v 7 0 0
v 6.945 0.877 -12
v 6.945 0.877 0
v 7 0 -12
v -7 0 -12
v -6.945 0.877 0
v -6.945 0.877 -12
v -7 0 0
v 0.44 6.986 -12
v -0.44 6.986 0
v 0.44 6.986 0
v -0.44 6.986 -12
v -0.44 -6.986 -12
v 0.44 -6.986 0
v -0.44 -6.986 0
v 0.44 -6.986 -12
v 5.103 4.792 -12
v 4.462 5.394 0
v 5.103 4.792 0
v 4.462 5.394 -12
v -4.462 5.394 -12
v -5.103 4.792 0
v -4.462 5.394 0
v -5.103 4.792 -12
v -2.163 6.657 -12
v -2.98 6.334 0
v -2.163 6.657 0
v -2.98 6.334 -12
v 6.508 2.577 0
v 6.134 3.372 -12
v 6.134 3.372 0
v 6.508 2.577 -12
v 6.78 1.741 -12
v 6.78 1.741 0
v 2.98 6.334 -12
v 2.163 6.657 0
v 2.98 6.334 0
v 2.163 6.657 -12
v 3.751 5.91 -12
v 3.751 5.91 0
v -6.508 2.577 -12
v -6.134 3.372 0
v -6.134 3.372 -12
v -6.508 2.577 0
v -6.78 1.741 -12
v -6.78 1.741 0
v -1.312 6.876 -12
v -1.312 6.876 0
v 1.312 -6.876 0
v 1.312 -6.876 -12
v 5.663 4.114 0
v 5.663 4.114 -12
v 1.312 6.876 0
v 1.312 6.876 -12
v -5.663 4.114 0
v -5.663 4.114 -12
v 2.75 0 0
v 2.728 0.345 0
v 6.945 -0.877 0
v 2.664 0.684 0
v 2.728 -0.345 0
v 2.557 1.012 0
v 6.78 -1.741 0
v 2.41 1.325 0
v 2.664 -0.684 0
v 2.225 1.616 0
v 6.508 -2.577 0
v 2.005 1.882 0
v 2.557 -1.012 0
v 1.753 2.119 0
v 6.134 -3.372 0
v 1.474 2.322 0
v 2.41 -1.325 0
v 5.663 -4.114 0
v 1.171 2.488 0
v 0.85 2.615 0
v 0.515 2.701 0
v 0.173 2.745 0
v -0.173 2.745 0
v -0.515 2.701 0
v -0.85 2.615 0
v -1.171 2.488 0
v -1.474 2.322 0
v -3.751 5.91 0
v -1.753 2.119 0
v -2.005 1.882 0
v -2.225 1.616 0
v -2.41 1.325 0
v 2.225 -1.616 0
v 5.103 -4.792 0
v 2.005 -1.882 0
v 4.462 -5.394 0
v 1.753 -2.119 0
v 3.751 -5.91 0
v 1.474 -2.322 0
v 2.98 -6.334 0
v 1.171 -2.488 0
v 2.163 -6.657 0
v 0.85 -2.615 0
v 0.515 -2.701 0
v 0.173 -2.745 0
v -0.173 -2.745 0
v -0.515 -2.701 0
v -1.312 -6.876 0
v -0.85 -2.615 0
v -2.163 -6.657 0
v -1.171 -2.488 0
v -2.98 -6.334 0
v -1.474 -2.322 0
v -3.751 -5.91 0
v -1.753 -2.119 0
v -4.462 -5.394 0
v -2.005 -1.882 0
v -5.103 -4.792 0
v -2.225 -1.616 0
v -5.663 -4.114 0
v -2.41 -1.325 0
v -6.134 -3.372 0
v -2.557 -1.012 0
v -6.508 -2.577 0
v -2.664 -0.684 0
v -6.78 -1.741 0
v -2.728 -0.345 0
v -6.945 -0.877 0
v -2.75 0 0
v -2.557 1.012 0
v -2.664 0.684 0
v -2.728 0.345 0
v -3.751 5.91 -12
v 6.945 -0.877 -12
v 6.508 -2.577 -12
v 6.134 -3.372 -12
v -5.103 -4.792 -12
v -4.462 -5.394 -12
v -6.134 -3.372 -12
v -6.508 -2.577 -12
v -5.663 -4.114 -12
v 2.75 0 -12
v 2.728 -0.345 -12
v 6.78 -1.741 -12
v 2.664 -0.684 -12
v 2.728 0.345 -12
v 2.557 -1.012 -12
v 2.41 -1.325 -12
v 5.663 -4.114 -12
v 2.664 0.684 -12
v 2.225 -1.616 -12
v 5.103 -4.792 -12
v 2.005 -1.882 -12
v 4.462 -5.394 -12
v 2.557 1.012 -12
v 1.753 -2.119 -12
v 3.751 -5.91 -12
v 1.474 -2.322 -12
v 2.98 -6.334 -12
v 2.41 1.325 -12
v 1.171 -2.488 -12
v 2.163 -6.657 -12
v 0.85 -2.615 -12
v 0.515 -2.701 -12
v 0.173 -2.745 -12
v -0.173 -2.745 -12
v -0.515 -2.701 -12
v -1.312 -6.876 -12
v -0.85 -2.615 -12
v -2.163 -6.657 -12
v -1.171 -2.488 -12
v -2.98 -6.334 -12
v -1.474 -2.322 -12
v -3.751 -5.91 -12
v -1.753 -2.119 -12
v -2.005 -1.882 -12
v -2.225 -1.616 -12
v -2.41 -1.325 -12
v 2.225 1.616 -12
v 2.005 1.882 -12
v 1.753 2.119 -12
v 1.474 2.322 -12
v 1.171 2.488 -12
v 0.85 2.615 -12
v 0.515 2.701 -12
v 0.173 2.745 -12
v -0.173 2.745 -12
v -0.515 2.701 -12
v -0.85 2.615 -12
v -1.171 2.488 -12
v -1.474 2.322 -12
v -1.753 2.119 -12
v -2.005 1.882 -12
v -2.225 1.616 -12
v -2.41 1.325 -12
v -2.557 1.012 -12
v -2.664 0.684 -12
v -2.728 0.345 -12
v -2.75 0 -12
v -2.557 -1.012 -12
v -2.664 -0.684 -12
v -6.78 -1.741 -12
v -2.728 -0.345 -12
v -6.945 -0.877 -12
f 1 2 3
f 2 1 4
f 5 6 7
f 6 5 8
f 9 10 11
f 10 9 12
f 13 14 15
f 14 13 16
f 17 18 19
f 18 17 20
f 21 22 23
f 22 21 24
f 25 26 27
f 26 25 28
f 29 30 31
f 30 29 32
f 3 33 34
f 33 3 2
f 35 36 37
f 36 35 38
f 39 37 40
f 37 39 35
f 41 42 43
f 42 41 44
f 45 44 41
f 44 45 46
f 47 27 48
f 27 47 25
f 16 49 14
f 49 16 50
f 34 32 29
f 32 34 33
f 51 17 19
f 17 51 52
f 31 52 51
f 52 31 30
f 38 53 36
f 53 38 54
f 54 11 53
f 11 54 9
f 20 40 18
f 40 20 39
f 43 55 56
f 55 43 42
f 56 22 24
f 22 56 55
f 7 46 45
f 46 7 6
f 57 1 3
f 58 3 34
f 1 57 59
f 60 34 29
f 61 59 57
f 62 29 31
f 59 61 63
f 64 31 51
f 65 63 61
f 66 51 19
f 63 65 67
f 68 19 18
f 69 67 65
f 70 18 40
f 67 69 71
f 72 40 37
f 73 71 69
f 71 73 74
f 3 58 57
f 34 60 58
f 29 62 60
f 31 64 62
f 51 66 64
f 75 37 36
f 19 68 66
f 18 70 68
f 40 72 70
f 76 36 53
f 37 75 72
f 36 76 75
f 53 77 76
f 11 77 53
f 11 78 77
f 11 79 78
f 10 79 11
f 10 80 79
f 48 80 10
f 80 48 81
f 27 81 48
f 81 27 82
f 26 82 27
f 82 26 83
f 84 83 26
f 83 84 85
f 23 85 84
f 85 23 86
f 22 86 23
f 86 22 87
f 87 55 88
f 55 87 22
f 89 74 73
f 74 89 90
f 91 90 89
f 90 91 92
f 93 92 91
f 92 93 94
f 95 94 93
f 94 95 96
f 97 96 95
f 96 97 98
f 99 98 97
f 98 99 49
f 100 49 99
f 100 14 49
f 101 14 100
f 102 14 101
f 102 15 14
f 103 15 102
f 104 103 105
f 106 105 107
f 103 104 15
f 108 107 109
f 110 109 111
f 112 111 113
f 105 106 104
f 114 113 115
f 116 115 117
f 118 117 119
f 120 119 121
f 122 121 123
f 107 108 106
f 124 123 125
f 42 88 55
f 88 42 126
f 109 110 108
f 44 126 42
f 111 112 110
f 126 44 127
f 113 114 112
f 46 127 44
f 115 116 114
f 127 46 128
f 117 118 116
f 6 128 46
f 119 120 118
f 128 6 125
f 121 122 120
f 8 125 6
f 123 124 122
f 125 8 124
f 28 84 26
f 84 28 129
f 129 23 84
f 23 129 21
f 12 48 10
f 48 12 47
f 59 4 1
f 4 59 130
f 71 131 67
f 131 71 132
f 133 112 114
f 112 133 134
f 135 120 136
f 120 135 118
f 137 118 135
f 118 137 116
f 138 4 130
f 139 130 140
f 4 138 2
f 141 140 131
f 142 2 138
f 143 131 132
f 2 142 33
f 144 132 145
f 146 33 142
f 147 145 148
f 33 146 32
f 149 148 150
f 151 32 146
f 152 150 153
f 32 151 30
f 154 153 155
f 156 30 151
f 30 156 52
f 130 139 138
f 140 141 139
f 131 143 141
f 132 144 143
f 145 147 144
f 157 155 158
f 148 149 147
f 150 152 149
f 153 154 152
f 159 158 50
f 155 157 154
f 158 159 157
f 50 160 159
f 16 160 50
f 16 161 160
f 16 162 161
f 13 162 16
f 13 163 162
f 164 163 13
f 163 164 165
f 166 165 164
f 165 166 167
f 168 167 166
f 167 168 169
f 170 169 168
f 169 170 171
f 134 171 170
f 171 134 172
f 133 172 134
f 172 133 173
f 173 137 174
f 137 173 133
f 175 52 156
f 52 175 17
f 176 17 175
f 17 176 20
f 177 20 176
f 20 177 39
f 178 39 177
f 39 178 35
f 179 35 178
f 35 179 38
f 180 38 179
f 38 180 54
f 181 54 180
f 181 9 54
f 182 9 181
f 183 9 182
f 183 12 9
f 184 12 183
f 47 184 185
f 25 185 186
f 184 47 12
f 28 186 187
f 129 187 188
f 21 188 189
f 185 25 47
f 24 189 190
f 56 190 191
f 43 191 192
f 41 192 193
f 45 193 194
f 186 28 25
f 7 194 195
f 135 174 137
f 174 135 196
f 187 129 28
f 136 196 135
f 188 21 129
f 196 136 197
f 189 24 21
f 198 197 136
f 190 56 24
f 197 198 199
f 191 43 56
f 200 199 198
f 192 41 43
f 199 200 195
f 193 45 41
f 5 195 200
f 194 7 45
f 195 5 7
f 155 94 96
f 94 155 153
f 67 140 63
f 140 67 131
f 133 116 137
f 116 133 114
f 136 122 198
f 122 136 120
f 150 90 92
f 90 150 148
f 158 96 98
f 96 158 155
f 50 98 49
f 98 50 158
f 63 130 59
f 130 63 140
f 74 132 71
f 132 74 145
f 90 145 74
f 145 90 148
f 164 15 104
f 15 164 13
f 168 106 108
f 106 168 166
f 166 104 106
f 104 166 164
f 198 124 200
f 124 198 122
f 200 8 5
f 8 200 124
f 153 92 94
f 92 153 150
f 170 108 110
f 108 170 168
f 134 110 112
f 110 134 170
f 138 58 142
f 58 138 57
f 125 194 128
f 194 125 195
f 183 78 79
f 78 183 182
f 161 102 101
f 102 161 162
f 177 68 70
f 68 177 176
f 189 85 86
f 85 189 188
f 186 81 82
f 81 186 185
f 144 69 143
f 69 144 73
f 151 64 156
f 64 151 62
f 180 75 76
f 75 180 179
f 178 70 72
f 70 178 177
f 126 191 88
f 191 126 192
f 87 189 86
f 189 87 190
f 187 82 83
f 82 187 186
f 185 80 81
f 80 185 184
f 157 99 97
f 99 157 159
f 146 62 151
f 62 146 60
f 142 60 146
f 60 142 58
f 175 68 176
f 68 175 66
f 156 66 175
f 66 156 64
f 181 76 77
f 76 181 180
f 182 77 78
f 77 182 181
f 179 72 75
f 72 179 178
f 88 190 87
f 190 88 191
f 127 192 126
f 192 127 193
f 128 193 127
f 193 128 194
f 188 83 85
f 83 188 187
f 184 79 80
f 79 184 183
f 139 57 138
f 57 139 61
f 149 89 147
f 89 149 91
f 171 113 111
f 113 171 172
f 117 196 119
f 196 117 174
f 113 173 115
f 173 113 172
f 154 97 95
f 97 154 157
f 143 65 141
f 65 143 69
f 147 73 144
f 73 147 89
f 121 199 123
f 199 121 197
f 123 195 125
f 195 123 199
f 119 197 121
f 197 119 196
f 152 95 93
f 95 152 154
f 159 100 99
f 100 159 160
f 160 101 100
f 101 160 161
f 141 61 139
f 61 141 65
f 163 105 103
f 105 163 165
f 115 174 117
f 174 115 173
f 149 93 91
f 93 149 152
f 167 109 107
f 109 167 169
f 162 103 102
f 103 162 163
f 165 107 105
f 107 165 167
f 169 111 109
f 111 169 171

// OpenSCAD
$fn = 50;


difference() {
	union() {
		translate(v = [0, 0, -12.0000000000]) {
			cylinder(h = 12, r = 7.0000000000);
		}
		cylinder(h = 0, r = 16.0000000000);
	}
	union() {
		#translate(v = [0, 0, -12]) {
			cylinder(h = 12, r = 2.7500000000);
		}
	}
}
